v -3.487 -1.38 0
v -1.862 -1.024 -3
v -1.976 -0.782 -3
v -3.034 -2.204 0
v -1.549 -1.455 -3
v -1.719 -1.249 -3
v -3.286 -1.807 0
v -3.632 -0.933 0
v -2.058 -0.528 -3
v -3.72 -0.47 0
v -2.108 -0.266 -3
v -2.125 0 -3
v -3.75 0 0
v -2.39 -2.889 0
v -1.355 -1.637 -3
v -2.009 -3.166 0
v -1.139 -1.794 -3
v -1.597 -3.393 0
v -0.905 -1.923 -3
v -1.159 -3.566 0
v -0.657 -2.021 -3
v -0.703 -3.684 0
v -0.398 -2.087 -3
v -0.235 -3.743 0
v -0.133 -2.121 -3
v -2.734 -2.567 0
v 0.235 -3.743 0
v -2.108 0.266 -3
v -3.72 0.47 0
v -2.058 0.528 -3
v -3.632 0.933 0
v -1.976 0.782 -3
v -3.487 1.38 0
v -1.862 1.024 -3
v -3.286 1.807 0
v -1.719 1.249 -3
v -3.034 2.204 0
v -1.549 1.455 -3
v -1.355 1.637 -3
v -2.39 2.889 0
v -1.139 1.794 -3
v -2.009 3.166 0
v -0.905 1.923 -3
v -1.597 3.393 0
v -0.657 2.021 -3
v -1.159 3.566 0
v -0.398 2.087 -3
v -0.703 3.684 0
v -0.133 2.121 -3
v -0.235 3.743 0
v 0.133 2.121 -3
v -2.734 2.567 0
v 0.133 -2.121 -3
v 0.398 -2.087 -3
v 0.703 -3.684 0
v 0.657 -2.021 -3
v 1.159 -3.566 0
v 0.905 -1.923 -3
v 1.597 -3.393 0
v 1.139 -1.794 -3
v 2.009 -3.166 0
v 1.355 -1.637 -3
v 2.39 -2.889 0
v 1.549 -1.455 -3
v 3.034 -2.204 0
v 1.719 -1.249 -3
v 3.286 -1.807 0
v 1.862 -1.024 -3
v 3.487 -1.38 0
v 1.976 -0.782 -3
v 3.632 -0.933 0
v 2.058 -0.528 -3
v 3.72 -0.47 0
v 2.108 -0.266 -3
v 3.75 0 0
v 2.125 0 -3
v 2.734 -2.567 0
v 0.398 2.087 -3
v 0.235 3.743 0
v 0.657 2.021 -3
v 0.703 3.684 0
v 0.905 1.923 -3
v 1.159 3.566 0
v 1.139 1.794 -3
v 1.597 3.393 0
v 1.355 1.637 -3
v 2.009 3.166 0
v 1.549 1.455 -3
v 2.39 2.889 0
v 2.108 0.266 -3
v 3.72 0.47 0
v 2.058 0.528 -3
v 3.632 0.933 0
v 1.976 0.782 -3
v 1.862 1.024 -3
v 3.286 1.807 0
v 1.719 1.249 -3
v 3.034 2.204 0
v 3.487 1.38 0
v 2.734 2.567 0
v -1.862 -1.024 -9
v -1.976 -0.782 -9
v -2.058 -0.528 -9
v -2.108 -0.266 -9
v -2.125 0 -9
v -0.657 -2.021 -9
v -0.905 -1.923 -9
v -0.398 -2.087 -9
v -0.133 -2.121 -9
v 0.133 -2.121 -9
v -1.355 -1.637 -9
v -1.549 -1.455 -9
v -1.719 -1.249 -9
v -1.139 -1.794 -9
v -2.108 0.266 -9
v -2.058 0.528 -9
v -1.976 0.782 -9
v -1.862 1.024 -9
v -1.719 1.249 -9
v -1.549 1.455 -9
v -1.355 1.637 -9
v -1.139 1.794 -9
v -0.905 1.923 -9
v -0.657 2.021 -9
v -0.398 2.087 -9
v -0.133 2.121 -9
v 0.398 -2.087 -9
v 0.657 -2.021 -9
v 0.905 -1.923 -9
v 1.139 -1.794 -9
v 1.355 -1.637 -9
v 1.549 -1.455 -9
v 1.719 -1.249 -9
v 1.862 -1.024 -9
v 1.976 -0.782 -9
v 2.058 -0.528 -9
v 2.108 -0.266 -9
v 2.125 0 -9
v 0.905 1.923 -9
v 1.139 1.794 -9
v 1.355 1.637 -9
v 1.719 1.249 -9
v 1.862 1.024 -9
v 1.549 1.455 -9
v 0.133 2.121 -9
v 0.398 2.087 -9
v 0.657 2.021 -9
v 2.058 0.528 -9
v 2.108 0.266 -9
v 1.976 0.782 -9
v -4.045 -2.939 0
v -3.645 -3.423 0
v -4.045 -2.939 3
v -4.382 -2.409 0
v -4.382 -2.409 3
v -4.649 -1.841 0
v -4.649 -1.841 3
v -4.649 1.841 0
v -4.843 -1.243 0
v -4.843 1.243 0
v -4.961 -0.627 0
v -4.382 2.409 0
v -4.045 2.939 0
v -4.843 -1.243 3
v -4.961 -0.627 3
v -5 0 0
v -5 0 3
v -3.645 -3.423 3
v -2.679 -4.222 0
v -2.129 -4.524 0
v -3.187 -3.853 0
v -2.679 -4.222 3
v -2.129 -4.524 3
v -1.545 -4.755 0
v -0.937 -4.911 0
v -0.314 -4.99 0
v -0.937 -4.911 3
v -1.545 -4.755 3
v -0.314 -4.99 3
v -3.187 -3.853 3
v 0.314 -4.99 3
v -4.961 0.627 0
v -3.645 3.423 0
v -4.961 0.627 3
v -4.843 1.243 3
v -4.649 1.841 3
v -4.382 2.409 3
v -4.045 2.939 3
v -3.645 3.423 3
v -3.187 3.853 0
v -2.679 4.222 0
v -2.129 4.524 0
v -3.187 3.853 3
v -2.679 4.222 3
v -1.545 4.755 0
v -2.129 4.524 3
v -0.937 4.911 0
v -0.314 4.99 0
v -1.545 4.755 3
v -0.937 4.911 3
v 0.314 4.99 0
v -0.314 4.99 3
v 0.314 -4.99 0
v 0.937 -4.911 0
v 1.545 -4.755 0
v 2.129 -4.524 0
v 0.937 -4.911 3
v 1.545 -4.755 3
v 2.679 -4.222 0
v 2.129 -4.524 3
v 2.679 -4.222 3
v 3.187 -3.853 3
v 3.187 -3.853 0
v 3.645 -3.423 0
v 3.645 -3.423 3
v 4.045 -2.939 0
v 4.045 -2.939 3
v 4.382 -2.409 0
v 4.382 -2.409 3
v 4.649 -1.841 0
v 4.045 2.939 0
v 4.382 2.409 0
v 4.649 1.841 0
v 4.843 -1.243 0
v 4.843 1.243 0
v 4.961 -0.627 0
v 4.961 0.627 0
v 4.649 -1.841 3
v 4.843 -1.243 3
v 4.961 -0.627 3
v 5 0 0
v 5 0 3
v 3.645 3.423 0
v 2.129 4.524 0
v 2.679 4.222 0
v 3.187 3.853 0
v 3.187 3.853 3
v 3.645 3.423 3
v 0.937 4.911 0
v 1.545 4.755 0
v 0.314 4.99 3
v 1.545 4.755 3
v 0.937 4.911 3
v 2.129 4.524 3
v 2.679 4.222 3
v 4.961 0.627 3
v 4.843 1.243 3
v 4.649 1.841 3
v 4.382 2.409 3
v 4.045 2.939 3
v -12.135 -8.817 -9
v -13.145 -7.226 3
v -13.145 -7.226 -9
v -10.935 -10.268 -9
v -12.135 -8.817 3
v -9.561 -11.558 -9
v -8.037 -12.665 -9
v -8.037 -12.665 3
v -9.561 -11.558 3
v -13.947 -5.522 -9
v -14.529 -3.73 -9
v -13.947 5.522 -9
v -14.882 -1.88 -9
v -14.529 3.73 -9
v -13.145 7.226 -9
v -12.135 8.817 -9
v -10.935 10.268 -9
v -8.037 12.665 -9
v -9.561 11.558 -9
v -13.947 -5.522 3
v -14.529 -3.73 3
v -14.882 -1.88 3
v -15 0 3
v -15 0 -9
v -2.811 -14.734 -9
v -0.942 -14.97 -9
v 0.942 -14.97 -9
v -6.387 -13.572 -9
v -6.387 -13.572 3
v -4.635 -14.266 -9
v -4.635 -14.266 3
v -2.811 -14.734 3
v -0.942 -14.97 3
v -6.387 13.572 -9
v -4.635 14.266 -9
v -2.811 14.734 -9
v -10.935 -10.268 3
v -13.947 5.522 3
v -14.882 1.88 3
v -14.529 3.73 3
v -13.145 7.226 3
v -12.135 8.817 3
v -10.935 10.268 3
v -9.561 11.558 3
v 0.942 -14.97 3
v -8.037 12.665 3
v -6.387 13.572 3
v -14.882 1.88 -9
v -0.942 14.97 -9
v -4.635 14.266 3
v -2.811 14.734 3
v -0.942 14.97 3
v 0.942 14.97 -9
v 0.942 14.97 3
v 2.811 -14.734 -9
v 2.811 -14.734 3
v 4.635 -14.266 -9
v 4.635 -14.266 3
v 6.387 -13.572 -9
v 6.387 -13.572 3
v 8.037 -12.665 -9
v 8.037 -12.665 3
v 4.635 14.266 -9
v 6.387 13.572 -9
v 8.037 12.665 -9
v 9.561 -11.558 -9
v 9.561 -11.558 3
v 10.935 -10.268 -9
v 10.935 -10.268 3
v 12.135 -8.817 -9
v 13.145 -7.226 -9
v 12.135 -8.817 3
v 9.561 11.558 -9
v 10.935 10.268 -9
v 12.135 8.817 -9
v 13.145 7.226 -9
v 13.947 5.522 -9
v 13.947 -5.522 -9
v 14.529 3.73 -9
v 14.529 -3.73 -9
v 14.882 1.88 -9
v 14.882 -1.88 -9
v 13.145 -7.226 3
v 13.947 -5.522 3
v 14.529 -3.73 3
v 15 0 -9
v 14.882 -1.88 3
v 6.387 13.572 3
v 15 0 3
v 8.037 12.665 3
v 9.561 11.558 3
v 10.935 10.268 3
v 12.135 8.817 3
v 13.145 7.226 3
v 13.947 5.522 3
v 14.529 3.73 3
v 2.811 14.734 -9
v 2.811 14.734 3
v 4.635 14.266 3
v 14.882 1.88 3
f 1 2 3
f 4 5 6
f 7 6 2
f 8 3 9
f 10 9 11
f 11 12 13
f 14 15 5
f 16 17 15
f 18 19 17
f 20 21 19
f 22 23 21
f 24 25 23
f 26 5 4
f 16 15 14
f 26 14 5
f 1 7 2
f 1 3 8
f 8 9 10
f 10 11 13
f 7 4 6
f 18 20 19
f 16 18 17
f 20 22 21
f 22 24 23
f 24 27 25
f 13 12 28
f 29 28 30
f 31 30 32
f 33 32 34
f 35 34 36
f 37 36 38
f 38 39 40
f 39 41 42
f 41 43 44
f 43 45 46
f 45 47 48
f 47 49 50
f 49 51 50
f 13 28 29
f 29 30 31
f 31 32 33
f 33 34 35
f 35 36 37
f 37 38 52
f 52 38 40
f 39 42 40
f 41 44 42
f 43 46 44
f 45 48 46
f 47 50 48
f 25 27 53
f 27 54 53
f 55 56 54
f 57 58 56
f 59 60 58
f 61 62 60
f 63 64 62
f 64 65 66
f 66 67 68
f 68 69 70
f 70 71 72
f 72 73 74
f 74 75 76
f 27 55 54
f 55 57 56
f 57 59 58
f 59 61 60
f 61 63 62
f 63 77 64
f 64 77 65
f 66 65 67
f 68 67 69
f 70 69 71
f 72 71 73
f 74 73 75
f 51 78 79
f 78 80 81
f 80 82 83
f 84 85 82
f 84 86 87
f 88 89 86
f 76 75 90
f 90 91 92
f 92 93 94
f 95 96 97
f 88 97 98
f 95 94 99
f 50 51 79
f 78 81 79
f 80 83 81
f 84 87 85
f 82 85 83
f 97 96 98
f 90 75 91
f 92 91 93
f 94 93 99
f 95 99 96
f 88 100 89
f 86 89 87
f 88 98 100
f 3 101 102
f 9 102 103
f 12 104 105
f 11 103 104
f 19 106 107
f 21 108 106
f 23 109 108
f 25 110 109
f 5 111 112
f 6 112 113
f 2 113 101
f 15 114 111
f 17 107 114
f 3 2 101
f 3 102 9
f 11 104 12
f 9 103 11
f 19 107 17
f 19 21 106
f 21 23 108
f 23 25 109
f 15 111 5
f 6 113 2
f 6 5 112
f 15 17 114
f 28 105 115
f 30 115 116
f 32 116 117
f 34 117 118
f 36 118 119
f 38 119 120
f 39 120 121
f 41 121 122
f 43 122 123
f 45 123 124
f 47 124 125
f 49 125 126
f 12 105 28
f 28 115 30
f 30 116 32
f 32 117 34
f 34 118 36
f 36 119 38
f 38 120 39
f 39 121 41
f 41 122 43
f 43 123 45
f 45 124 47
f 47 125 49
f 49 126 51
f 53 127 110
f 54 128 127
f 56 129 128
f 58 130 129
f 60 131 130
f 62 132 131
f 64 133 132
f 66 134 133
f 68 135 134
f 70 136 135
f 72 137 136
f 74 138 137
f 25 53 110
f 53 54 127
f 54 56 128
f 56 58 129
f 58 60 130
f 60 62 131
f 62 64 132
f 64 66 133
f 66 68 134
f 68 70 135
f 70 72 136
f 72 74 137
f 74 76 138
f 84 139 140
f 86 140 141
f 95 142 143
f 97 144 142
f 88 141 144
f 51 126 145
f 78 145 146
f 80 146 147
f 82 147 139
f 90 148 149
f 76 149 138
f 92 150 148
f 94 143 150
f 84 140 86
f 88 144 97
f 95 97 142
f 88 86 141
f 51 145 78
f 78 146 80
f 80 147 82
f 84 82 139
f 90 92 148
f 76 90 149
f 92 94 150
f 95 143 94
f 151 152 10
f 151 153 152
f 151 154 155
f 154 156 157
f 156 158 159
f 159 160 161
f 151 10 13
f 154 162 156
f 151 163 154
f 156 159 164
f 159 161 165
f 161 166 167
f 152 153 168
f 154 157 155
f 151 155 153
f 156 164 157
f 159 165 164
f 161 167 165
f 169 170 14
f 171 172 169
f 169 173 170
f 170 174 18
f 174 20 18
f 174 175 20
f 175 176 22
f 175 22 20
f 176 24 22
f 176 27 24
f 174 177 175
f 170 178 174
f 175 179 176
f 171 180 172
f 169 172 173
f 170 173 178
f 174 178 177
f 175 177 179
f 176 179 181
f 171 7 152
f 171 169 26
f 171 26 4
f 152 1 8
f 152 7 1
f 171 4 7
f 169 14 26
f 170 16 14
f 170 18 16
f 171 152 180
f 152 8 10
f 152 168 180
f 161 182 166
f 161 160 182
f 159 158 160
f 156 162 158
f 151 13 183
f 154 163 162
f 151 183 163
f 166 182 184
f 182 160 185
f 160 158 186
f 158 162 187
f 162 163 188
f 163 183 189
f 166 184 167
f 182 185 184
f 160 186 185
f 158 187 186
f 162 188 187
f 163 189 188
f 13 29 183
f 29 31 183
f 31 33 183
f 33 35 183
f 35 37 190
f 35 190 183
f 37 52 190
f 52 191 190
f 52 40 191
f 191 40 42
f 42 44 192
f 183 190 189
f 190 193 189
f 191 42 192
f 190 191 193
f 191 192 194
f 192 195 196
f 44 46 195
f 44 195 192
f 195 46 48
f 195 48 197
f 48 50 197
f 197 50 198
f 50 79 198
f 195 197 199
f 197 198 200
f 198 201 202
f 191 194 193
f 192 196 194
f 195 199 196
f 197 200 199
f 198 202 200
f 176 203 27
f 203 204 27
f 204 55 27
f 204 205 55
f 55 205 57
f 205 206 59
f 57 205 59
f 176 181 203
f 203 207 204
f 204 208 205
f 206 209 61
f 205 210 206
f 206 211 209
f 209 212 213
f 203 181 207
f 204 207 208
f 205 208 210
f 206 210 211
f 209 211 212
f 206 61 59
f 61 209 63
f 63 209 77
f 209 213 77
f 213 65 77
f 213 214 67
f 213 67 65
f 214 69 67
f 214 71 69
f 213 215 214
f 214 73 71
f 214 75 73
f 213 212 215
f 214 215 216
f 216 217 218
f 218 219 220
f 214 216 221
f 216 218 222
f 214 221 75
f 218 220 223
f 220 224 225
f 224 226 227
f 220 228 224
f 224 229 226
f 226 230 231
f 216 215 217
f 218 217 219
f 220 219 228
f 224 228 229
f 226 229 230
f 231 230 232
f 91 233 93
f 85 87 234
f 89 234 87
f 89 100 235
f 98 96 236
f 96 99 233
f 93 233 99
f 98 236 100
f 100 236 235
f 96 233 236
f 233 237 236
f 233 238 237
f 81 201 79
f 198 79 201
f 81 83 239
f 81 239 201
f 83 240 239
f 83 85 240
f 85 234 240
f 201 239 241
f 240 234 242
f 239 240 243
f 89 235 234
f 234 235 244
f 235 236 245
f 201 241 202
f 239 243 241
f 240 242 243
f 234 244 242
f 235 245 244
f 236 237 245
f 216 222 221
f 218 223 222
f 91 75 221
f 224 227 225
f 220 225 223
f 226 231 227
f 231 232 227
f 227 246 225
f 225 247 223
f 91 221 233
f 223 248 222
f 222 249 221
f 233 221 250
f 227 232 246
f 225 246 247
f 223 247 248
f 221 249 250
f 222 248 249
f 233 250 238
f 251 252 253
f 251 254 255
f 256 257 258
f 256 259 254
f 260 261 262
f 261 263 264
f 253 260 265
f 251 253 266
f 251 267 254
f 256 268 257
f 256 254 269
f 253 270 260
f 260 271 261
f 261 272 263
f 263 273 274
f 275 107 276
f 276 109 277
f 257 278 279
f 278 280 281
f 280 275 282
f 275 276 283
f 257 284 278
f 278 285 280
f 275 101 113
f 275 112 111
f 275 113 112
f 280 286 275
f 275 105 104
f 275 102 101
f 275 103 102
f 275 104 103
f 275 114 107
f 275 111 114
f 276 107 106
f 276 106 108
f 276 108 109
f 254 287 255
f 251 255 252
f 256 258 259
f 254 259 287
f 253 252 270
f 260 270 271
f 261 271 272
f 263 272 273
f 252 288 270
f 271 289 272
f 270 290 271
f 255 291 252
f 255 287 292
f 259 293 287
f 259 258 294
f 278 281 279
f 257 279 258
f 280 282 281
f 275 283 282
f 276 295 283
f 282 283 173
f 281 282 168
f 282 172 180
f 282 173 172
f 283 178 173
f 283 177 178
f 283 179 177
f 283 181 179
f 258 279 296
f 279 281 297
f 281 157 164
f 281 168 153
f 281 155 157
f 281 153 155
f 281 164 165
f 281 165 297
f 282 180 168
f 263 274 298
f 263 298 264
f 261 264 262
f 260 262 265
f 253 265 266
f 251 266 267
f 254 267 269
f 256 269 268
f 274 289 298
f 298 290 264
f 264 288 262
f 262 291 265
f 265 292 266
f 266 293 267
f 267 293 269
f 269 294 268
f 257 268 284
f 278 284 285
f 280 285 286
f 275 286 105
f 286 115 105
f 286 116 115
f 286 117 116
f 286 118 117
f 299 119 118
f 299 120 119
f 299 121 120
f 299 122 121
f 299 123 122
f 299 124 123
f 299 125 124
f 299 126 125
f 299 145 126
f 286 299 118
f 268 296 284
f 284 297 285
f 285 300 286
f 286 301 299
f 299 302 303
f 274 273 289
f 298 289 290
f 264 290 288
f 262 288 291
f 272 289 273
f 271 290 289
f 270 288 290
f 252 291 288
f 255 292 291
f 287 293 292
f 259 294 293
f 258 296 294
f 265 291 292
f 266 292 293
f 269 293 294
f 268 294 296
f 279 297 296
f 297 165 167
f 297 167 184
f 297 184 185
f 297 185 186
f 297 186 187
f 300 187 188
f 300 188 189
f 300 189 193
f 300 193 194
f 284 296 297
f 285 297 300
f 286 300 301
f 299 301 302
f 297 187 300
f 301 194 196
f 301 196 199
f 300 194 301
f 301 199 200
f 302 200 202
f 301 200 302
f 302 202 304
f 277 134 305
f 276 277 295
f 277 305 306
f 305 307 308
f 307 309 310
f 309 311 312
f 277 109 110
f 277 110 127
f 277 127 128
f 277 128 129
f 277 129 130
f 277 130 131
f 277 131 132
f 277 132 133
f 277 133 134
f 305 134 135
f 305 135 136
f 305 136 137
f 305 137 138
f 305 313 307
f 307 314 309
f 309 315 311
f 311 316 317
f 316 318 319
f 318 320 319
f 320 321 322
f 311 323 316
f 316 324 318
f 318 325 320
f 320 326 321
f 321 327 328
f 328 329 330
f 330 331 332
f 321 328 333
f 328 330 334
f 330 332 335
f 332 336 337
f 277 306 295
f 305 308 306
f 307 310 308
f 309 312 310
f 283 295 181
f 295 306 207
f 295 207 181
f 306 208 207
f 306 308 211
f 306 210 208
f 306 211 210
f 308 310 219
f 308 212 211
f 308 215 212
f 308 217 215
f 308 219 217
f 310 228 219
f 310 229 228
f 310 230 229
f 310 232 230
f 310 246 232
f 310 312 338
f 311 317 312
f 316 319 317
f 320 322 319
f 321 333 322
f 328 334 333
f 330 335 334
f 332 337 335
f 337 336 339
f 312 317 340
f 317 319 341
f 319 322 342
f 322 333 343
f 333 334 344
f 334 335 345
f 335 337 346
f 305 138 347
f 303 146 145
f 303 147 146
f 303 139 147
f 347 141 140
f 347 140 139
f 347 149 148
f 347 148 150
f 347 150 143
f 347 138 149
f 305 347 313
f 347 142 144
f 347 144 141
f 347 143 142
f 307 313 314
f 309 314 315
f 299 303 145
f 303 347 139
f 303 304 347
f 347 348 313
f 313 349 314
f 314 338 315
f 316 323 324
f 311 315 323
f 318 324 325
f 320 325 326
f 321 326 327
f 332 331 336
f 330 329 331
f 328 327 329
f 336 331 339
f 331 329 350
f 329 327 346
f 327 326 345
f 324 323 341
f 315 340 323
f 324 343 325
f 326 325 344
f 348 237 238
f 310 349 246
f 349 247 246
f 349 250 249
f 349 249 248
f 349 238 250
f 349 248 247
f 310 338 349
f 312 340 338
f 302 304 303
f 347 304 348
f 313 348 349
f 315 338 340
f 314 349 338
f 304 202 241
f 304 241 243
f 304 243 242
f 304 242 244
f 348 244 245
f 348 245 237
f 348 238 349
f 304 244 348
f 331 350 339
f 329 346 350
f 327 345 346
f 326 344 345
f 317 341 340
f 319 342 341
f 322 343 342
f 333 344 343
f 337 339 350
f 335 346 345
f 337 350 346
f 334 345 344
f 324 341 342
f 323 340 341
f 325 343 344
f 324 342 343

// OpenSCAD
$fn = 50;

difference() {
	union() {
		translate(v = [0, 0, -9.0]) {
			cylinder(h = 12, r = 15.0);
		}
	}
	union() {
		translate(v = [0, 0, 0]) {
			rotate(a = [0, 0, 0]) {
				difference() {
					union() {
						translate(v = [0, 0, -12.0]) {
							cylinder(h = 12, r = 2.0);
						}
						translate(v = [0, 0, -3]) {
							cylinder(h = 3, r1 = 2.125, r2 = 3.75);
						}
						translate(v = [0, 0, -12.0]) {
							cylinder(h = 12, r = 2.125);
						}
						translate(v = [0, 0, -12.0]) {
							cylinder(h = 12, r = 2.0);
						}
					}
					union();
				}
			}
		}
		#cylinder(h = 3, r = 5.0);
	}
}
